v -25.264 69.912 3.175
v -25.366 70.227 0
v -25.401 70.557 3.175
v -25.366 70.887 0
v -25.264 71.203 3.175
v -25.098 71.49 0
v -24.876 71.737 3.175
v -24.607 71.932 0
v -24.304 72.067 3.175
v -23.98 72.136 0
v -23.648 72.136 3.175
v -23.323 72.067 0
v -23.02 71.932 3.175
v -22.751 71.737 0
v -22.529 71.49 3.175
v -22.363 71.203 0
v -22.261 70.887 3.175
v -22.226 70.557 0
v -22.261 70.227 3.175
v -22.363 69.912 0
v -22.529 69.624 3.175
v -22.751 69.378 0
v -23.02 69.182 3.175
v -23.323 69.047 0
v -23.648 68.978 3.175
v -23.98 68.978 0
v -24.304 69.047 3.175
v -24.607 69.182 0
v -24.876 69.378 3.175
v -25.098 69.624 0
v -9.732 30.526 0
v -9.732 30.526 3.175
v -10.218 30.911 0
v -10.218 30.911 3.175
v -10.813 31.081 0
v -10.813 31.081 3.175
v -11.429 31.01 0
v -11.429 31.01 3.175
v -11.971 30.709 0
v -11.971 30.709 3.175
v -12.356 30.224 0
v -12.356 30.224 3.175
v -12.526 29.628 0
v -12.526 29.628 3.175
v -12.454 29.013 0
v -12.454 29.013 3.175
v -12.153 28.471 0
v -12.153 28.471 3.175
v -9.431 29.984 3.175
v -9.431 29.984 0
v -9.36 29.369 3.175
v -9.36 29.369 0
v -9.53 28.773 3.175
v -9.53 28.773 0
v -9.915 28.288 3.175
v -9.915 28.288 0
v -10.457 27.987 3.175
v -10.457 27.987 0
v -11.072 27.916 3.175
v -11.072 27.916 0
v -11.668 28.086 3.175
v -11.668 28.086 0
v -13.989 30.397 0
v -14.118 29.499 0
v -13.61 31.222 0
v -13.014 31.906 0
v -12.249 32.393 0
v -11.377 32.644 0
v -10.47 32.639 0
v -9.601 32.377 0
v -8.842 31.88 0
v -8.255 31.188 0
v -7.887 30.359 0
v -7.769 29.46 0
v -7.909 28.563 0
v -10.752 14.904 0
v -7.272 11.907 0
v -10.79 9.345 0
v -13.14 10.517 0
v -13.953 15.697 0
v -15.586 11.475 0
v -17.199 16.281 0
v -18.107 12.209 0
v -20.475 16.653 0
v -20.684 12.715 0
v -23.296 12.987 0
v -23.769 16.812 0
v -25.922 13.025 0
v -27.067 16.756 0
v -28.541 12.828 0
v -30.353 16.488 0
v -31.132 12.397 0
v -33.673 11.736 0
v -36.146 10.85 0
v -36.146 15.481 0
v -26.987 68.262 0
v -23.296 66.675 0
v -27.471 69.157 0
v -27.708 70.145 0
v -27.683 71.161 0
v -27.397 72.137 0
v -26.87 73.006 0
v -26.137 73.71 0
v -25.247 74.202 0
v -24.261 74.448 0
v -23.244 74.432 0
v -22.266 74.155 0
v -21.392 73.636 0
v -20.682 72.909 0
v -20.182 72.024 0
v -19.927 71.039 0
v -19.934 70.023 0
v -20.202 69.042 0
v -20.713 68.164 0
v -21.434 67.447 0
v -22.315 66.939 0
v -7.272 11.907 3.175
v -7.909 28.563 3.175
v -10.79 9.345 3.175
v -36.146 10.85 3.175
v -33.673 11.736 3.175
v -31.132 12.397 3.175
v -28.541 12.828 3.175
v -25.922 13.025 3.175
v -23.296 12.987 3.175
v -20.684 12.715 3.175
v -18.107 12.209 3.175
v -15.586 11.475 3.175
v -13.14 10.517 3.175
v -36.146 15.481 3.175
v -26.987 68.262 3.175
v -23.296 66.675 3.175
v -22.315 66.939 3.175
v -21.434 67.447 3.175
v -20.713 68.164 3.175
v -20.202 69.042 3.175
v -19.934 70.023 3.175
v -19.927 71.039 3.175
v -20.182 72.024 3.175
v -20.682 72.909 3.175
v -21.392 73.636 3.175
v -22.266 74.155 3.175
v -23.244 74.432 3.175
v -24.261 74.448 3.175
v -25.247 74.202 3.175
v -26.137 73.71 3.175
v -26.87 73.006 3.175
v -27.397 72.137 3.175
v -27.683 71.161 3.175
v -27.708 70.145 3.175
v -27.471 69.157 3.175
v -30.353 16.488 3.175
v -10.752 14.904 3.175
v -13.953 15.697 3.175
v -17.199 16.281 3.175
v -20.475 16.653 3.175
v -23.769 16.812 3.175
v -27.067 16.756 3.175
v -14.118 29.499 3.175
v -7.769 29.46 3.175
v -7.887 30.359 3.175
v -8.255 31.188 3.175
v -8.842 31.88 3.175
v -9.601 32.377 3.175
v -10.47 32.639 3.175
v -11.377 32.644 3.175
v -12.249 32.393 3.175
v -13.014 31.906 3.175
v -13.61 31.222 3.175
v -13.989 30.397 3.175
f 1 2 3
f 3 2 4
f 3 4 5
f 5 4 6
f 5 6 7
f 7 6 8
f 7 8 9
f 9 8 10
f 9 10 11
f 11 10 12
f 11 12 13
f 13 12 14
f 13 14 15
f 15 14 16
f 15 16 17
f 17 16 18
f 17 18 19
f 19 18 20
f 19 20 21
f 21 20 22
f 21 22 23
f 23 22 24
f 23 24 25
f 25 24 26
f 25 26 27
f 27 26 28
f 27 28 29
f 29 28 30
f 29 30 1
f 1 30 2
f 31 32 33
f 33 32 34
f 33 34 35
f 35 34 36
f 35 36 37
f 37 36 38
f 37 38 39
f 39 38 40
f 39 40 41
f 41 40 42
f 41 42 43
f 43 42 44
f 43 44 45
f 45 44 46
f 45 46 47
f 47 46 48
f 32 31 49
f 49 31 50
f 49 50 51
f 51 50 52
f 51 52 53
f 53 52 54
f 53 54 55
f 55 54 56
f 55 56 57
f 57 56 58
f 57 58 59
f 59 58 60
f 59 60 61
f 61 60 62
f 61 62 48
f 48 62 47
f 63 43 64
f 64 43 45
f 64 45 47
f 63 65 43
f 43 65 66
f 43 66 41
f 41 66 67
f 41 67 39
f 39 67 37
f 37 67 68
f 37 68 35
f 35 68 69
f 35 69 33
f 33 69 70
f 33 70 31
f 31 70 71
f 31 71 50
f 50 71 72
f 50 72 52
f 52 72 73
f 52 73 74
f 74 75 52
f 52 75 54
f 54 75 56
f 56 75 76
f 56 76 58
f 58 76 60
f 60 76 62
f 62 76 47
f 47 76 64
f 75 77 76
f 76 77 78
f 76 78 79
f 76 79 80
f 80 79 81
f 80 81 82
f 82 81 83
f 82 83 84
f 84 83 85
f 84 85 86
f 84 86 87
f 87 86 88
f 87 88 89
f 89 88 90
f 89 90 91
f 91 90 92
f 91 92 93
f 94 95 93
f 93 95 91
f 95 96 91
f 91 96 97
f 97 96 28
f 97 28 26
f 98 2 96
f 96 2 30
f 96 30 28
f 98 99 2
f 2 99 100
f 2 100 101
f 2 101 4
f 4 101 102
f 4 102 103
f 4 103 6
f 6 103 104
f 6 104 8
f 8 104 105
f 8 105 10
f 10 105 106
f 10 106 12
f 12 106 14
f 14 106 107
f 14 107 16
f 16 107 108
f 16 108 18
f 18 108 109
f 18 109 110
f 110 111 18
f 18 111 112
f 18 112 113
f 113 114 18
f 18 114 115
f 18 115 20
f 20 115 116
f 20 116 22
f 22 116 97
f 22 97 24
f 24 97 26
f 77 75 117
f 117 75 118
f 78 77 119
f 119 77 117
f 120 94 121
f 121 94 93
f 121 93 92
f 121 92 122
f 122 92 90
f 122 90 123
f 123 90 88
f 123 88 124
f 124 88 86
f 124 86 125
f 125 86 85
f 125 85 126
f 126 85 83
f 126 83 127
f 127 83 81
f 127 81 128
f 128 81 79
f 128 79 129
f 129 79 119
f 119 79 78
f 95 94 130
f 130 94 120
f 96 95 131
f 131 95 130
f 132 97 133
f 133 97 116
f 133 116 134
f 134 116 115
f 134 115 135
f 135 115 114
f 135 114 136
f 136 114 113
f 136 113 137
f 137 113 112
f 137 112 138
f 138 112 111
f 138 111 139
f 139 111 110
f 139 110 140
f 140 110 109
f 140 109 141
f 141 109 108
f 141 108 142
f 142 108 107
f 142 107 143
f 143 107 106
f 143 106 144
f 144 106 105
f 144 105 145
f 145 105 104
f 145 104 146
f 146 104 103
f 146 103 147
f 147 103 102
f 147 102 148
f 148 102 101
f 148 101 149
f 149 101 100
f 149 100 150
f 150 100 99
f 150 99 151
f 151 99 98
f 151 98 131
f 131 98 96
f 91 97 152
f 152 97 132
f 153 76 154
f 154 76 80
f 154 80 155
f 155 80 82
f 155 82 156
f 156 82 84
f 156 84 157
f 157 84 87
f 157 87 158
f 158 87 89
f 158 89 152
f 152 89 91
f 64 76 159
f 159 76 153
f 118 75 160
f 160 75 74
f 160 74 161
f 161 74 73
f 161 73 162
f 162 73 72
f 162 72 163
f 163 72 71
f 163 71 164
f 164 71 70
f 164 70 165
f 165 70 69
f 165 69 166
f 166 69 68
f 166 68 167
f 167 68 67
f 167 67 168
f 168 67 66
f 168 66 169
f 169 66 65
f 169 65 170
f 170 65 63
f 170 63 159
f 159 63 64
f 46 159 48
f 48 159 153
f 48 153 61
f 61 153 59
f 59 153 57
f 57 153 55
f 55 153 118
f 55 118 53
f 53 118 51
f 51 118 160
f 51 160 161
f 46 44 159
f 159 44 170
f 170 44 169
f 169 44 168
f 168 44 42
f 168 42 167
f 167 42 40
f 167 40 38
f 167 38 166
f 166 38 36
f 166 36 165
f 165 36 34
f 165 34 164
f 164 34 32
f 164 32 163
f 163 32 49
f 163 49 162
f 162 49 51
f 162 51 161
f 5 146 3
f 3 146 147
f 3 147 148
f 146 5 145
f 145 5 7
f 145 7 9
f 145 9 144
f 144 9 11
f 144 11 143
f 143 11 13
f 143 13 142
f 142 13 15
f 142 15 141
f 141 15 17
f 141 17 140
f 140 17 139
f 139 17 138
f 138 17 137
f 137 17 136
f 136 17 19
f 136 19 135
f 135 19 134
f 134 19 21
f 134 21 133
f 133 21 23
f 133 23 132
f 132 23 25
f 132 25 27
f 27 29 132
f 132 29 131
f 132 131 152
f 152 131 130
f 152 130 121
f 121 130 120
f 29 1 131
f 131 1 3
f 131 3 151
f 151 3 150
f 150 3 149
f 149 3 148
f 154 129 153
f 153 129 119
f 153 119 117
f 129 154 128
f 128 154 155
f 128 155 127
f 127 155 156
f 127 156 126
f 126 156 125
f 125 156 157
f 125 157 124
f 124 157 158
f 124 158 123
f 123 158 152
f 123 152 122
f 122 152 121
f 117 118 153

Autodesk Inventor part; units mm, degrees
ref_plane "YZ Plane" through (0, 0, 0) normal (1, 0, 0) x (0, 1, 0)
ref_plane "XZ Plane" through (0, 0, 0) normal (0, 1, 0) x (-1, 0, 0)
ref_plane "XY Plane" through (0, 0, 0) normal (0, 0, 1) x (1, 0, 0)
sketch "Sketch2" plane through (0, 0, 0) normal (0, 0, 1) x (1, 0, 0)
  circle A0 centre (-10.9433, 29.4991) radius 1.5875
  arc A1 (-7.9093, 28.5632) -> (-13.7976, 28.1085) centre (-10.9433, 29.4991) ccw
  line L0 (-7.9093, 28.5632) -> (-7.2718, 11.9066)
  line L1 (-7.2718, 11.9066) -> (-10.7903, 9.3453)
  line L2 (-14.1183, 29.4991) -> (-10.7522, 14.9045)
  arc A2 (-10.7522, 14.9045) -> (-30.3533, 16.4875) centre (-24.5669, -34.0068) ccw
  arc A3 (-10.7903, 9.3453) -> (-36.1457, 10.8505) centre (-25.0332, -16.2685) ccw
  line L3 (0, 0) -> (-13.4011, 0)
  line L4 (0, 0) -> (0, 33.0147)
  line L5 (-36.1457, 15.4815) -> (-36.1457, 10.8505)
  line L6 (-36.1457, 15.4815) -> (-26.9875, 68.2625)
  line L7 (-30.3533, 16.4875) -> (-23.2965, 66.675)
  arc A4 (-23.2965, 66.675) -> (-26.9875, 68.2625) centre (-23.8136, 70.5573) ccw
  circle A5 centre (-23.8136, 70.5573) radius 1.5875
  dimension "d0" = 3.175
  dimension "d1" = 6.35
  dimension "d2" = 25.4
  dimension "d3" = 25.4
  dimension "d4" = 31.4635
  dimension "d5" = 10.9433
  dimension "d6" = 29.4991
  dimension "d7" = 4.631
  dimension "d8" = 5.5592
  dimension "d9" = 2.9979
  dimension "d11" = 17.7614
extrude "Extrusion1" add sketch "Sketch2" along normal blind 3.175 contours A0 | L0 L1 A3 L5 L6 A4 L7 A2 L2 A1 | A5
hole "Hole1" at (-10.9423, 29.498, 11.1125) direction (0, 0, -1) diameter 3.175 end through all
hole "Hole4" at (-10.9433, 29.4991, 0) at (-23.8136, 70.5573, 0) direction (0, 0, 1) diameter 3.175 depth 25.4 tip angle 118
properties part number "Trigger"
